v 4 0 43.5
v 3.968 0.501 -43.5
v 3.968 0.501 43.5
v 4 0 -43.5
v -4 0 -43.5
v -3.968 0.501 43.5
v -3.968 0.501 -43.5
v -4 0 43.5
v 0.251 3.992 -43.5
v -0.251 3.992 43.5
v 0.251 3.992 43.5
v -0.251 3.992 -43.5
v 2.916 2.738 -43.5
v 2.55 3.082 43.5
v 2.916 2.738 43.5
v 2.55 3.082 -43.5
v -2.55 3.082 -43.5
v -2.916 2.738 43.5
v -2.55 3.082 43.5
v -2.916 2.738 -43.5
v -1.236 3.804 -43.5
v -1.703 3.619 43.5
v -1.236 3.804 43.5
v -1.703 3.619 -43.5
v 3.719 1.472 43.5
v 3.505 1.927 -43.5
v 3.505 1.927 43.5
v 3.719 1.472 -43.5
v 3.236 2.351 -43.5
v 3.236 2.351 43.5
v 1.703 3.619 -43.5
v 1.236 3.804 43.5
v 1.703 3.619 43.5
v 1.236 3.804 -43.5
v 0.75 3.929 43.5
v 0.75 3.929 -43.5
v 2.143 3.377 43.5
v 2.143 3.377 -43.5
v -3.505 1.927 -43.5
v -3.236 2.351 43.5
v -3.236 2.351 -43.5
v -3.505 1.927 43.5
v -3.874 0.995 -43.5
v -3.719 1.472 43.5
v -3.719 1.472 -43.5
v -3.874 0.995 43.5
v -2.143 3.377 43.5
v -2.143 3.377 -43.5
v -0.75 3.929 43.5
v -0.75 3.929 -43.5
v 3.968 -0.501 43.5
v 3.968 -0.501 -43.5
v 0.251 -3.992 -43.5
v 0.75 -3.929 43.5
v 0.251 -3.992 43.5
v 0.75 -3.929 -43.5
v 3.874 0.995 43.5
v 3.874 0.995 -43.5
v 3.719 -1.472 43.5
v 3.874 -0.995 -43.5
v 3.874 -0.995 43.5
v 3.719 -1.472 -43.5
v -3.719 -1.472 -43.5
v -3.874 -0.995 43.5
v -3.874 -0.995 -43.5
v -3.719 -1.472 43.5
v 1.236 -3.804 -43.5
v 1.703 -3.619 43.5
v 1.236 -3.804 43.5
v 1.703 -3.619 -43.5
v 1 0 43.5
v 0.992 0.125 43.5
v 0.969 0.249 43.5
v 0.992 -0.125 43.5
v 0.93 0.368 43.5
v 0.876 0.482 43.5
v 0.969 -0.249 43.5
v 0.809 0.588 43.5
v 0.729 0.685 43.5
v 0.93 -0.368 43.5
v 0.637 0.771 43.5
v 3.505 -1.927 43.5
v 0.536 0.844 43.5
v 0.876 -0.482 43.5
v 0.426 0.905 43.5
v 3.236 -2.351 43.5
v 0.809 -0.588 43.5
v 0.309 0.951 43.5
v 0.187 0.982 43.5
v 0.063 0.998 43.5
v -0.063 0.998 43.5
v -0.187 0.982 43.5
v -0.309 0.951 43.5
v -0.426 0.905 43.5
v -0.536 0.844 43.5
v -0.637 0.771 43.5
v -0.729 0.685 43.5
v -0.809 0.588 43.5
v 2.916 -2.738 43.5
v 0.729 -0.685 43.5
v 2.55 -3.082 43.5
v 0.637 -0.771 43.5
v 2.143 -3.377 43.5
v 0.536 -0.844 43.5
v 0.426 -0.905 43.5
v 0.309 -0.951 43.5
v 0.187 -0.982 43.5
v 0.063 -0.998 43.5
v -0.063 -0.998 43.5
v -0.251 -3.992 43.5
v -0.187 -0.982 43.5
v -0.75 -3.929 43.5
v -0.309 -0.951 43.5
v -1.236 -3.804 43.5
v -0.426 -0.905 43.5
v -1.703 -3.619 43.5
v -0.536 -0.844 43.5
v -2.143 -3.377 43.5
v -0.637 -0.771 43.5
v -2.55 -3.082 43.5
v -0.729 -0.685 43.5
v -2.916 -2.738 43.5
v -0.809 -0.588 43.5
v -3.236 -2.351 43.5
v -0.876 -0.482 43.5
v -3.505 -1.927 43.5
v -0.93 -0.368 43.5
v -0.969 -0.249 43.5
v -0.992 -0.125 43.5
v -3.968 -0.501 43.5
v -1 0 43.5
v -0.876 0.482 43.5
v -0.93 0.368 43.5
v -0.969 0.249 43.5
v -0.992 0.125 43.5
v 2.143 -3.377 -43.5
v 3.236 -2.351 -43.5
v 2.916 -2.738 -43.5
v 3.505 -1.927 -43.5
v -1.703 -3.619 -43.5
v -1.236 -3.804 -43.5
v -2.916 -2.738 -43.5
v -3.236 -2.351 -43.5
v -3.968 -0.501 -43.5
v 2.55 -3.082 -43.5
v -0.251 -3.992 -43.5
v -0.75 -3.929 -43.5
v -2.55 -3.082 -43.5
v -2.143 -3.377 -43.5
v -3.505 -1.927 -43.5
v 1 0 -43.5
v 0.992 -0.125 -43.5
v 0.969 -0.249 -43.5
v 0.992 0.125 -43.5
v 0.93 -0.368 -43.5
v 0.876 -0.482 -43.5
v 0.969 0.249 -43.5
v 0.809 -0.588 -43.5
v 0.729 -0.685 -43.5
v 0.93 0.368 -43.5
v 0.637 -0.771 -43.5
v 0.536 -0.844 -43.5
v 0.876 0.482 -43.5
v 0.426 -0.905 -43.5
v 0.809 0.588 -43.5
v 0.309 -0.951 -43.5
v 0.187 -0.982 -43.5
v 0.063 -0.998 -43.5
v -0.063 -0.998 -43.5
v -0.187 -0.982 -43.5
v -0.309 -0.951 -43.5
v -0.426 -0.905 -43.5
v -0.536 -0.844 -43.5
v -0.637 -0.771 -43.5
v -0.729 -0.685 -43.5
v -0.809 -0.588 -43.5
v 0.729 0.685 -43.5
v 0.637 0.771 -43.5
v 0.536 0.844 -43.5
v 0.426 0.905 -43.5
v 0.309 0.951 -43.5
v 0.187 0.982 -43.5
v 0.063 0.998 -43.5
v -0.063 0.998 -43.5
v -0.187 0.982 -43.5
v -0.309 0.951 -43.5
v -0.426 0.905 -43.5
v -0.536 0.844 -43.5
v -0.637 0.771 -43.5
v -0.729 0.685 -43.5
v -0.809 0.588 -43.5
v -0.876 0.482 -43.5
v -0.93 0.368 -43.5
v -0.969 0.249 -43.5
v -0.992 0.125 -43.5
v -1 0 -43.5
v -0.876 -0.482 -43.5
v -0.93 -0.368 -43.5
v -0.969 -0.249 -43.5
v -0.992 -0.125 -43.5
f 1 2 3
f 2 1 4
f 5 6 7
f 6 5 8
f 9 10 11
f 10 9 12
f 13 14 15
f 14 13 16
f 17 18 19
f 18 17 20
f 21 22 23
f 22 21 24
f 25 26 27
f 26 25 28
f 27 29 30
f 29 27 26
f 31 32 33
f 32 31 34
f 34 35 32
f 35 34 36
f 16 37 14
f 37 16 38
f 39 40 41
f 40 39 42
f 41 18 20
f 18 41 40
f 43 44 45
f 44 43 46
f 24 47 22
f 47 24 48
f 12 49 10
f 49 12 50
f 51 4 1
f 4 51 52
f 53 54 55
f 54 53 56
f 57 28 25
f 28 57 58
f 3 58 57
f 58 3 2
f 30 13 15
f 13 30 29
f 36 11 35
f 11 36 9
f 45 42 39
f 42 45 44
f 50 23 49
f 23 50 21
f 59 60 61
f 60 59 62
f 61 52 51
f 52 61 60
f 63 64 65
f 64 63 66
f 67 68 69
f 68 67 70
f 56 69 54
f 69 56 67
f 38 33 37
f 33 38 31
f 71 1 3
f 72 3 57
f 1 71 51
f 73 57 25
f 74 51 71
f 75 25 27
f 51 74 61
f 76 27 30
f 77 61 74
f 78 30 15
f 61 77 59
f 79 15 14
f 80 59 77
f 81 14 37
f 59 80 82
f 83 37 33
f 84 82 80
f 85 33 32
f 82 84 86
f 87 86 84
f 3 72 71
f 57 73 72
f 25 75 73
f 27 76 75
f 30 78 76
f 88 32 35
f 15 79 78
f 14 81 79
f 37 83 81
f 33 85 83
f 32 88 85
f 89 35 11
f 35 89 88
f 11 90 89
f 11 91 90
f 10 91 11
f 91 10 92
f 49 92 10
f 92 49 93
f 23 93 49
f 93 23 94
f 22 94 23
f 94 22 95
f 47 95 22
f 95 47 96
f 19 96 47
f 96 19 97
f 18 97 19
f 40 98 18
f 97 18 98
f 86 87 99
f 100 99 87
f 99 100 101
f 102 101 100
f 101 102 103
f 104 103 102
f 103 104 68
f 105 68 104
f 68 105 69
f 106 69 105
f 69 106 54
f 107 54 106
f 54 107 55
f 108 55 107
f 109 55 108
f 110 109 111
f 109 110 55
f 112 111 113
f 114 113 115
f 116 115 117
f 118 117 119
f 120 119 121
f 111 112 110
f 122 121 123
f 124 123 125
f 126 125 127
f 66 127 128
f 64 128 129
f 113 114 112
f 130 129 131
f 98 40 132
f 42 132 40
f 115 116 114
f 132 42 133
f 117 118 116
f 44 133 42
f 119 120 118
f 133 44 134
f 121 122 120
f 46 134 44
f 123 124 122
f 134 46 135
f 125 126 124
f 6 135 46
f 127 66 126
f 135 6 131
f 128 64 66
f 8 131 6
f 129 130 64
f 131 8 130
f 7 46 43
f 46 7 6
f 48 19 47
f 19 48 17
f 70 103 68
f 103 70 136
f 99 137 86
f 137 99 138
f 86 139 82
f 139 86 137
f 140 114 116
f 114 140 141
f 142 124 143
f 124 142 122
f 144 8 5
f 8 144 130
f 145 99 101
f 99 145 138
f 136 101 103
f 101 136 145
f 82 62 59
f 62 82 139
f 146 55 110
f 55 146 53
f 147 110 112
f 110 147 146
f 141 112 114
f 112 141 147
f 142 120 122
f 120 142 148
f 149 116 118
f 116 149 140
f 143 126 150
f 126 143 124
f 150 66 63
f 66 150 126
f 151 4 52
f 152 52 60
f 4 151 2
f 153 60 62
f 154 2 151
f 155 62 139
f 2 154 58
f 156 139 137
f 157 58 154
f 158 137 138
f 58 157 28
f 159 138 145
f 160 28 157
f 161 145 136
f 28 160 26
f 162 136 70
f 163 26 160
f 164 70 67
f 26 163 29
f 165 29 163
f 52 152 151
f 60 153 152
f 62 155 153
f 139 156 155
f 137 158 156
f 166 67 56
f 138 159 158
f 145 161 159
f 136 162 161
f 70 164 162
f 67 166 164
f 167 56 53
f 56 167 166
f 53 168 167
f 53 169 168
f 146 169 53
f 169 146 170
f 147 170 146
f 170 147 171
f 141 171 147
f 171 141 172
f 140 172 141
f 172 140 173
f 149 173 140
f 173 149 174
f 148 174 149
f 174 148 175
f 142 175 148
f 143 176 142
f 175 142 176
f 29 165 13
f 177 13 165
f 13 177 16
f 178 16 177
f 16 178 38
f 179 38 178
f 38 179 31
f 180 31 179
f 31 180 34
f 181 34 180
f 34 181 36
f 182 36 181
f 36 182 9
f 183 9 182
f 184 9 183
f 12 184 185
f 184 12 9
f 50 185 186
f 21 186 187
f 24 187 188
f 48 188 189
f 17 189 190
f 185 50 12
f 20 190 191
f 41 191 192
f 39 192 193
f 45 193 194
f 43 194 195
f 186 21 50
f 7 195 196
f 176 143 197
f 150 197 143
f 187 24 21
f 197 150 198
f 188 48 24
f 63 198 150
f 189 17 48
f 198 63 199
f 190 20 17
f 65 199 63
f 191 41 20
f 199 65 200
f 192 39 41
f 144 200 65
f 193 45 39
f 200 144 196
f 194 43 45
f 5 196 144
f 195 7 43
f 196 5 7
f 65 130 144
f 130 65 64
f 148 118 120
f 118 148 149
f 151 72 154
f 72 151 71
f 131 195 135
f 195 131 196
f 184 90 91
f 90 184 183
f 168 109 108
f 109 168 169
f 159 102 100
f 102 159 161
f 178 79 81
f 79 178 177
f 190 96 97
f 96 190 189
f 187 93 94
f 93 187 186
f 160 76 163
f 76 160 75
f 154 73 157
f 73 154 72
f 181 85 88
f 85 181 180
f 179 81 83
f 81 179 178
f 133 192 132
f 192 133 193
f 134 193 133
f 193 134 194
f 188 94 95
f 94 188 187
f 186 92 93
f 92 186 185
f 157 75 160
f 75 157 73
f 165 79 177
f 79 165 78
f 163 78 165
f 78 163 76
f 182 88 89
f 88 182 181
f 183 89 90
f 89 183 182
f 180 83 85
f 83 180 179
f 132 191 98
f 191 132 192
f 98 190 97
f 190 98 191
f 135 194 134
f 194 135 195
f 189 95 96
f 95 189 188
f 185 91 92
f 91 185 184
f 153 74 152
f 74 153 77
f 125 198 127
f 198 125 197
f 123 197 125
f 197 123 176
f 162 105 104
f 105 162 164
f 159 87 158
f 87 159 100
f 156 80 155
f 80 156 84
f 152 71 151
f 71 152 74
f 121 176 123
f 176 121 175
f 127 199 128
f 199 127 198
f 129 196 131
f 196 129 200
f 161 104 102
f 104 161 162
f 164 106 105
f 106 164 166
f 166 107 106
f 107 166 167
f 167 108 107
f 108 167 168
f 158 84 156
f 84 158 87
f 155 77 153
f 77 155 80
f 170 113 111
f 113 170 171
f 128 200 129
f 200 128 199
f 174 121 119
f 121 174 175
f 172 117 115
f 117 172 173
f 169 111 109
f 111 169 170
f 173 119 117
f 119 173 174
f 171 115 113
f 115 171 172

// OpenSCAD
$fn = 50;


difference() {
	union() {
		translate(v = [0, 0, -43.5000000000]) {
			cylinder(h = 87, r = 4.0000000000);
		}
	}
	union() {
		translate(v = [0, 0, -100.0000000000]) {
			cylinder(h = 200, r = 1.0000000000);
		}
	}
}
